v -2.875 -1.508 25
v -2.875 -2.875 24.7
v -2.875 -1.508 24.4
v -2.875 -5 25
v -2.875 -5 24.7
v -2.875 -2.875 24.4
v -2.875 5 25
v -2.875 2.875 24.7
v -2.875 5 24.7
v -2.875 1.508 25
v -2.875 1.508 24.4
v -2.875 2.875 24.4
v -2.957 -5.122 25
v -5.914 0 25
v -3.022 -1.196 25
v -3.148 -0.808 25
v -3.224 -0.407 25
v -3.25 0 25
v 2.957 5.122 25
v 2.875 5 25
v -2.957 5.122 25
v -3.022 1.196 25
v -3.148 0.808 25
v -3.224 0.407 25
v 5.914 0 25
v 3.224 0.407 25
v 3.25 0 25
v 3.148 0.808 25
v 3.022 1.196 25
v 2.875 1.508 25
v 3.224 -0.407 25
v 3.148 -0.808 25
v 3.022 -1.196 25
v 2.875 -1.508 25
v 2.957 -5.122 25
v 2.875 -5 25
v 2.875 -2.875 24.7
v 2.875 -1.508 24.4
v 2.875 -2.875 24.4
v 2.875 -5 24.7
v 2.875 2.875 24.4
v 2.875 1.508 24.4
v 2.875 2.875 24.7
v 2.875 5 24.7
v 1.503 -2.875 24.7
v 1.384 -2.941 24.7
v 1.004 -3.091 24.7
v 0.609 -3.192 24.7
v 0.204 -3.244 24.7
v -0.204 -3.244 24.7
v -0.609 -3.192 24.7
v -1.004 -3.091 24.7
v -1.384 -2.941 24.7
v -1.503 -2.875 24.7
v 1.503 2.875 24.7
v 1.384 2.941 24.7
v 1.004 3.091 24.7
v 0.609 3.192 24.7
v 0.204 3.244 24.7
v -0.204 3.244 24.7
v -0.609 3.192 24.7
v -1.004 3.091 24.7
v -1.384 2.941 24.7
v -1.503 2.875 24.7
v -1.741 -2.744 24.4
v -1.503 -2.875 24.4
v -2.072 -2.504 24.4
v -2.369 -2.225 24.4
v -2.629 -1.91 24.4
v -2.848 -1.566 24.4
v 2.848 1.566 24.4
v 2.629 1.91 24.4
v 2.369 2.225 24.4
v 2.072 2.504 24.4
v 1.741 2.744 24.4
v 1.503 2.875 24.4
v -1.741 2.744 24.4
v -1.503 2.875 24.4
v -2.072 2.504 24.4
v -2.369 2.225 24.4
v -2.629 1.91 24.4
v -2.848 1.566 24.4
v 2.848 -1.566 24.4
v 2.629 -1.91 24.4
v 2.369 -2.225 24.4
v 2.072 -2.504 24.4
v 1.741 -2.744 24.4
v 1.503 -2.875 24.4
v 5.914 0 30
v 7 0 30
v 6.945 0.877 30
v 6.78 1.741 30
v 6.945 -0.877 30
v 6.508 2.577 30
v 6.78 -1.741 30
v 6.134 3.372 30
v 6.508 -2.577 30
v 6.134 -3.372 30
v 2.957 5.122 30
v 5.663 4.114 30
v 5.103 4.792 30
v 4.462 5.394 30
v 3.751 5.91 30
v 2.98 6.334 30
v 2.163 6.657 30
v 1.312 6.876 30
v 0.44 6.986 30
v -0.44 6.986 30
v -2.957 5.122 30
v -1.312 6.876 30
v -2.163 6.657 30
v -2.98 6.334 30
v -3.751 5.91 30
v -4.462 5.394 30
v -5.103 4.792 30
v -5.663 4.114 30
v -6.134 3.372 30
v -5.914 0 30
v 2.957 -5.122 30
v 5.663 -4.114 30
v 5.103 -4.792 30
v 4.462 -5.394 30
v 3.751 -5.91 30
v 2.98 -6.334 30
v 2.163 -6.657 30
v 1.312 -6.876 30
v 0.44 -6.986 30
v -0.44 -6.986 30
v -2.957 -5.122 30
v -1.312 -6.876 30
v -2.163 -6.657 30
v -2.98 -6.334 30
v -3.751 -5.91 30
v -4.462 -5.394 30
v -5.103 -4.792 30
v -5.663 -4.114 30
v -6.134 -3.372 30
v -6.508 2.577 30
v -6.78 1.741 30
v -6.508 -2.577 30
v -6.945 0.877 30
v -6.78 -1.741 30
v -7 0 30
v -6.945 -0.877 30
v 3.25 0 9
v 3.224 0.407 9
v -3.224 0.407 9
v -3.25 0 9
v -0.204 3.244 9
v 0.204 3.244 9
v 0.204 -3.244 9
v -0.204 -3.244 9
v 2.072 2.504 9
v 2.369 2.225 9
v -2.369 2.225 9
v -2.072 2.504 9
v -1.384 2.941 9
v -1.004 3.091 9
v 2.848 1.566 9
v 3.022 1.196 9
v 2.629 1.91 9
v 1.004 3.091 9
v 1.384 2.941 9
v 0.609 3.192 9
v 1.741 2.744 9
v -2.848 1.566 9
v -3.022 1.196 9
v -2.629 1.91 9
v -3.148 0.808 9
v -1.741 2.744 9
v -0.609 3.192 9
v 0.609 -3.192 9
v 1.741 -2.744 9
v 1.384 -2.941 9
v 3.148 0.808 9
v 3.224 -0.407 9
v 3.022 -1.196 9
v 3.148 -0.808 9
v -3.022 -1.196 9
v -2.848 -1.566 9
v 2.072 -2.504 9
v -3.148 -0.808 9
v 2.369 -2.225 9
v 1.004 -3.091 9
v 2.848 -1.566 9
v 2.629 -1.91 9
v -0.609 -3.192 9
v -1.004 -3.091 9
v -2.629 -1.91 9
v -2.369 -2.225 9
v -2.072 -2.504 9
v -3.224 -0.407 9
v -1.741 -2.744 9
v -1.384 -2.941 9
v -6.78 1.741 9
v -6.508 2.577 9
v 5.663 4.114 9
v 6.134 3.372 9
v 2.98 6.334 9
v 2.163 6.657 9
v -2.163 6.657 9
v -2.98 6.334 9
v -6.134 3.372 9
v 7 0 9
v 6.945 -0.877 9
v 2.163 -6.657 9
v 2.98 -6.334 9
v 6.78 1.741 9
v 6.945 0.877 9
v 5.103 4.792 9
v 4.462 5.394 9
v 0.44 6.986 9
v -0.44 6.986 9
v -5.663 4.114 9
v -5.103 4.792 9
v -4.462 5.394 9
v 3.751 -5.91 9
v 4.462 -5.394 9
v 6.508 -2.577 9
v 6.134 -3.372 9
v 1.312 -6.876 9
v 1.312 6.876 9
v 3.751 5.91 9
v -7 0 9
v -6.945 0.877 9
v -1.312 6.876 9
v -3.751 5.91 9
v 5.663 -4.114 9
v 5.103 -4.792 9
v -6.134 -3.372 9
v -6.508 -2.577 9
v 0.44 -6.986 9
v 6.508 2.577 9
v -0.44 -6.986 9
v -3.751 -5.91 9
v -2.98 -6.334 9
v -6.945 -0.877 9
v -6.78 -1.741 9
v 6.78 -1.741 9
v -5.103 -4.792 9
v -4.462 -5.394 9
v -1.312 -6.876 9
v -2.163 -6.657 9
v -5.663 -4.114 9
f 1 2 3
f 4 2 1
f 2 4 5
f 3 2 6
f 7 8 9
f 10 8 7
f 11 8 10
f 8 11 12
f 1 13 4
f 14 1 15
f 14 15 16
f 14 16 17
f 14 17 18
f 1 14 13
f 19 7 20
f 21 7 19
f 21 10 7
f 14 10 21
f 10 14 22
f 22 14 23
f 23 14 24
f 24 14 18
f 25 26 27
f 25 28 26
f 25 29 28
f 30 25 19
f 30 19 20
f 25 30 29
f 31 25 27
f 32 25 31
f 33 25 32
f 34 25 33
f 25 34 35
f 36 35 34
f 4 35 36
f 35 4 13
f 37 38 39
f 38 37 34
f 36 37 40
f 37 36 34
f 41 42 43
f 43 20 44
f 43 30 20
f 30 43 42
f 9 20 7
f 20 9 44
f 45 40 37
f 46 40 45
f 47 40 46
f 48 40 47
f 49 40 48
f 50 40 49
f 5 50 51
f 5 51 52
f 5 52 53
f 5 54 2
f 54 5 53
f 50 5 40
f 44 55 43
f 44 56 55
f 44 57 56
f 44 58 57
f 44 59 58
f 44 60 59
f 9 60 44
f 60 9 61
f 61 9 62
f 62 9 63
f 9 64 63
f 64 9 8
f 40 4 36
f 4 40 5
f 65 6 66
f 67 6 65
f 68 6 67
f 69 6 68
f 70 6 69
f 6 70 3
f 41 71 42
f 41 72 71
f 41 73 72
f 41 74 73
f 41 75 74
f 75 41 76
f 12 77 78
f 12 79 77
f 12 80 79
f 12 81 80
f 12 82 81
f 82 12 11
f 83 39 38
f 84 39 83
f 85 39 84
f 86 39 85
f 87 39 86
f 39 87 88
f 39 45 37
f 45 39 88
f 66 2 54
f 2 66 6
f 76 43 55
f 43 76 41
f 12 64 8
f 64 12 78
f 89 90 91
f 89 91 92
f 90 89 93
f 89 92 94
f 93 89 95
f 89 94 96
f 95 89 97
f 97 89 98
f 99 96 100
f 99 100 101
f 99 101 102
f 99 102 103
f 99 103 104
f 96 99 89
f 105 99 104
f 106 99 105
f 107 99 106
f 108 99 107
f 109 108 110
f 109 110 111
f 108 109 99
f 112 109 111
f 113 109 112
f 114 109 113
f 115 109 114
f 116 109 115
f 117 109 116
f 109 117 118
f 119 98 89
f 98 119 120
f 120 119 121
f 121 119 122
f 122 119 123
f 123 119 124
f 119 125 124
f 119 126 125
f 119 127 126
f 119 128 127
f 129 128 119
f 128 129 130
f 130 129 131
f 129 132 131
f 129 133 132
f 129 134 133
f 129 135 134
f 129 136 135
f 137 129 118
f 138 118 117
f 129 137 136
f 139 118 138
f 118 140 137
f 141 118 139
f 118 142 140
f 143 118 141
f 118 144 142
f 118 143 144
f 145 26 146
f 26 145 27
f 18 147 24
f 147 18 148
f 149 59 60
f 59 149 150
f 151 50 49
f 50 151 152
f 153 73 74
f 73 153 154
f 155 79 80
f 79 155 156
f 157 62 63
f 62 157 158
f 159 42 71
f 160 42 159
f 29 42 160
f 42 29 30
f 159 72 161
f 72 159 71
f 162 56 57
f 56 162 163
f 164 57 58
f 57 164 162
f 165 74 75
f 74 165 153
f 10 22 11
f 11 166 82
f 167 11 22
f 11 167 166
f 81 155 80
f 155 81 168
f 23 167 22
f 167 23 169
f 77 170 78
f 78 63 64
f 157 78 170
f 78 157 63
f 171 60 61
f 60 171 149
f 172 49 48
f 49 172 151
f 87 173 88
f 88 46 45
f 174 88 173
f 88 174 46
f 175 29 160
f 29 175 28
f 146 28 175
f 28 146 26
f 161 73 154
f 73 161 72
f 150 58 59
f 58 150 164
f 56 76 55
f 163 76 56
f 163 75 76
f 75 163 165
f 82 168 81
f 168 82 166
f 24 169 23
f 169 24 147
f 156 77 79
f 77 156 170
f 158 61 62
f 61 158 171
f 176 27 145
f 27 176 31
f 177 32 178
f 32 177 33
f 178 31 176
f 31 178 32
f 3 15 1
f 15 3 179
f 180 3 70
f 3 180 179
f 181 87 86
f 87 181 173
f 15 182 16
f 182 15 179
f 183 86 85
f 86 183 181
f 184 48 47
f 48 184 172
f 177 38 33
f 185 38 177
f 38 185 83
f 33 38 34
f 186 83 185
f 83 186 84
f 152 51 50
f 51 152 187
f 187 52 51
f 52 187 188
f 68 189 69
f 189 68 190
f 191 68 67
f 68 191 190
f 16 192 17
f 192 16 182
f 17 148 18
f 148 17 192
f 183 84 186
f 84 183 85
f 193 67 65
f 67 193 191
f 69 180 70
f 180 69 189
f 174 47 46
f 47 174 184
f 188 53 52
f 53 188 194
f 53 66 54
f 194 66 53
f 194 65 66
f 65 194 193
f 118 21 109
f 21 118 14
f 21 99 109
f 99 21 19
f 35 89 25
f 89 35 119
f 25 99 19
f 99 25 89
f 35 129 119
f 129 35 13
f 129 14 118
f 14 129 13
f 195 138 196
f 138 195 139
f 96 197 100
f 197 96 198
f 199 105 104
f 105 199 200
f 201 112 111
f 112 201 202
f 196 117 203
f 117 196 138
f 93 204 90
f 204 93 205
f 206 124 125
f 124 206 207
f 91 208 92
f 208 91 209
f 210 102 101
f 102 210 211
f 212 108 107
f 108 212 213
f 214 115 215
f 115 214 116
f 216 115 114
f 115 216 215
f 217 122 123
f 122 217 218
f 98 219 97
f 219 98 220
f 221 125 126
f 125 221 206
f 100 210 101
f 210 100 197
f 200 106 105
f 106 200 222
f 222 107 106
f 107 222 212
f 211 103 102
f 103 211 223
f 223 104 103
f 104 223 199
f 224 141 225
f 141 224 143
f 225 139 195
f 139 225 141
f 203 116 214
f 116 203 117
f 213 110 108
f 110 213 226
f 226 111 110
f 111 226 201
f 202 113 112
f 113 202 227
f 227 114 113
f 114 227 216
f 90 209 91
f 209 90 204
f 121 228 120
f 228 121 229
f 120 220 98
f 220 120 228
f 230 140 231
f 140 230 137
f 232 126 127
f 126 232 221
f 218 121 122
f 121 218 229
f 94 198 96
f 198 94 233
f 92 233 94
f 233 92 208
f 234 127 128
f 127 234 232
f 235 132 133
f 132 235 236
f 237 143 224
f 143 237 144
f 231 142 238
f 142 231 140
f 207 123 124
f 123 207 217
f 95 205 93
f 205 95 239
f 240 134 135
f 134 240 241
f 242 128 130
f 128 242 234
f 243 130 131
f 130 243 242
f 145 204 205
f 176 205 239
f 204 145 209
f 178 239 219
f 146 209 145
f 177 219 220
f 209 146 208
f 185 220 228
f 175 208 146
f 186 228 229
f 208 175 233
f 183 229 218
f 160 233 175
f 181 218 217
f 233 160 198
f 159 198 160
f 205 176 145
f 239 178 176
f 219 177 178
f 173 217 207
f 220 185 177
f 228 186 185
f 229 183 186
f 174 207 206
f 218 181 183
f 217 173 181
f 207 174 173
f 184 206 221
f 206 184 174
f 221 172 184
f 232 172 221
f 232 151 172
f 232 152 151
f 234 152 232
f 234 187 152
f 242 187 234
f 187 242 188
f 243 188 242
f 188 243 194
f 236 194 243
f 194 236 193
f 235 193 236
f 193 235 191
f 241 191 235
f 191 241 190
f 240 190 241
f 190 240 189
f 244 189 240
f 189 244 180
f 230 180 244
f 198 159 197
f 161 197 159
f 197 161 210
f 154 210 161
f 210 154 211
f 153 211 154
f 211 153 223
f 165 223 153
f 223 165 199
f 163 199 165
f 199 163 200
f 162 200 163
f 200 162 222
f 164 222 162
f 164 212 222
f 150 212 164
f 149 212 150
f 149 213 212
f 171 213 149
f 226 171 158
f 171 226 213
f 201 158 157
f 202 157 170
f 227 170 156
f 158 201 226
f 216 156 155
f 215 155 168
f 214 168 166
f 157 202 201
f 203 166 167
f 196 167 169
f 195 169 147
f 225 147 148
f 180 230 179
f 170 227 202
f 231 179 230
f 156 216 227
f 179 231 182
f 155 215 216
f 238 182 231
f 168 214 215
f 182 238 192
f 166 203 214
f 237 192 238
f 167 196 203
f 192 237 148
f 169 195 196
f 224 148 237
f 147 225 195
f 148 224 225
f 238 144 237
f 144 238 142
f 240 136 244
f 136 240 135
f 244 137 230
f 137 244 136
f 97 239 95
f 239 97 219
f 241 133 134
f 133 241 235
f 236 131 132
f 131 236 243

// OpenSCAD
$fn = 50;


difference() {
	union() {
		translate(v = [0, 0, 9.0000000000]) {
			cylinder(h = 21, r = 7.0000000000);
		}
	}
	union() {
		translate(v = [0, 0, 30]) {
			rotate(a = [0, 0, 0]) {
				difference() {
					union() {
						#translate(v = [-2.8750000000, -5.0000000000, -5.3000000000]) {
							cube(size = [5.7500000000, 10, 0.3000000000]);
						}
						#translate(v = [-2.8750000000, -2.8750000000, -5.6000000000]) {
							cube(size = [5.7500000000, 5.7500000000, 0.3000000000]);
						}
						#translate(v = [-2.8750000000, -5.0000000000, 0]) {
							cube(size = [5.7500000000, 10, 0.3000000000]);
						}
						#translate(v = [-2.8750000000, -2.8750000000, 0.3000000000]) {
							cube(size = [5.7500000000, 5.7500000000, 0.3000000000]);
						}
						#translate(v = [0, 0, -100.0000000000]) {
							cylinder(h = 200, r = 3.2500000000);
						}
						translate(v = [0, 0, -5]) {
							#linear_extrude(height = 5) {
								polygon(points = [[5.9142500000, 0.0000000000], [2.9571250000, 5.1218907443], [-2.9571250000, 5.1218907443], [-5.9142500000, 0.0000000000], [-2.9571250000, -5.1218907443], [2.9571250000, -5.1218907443]]);
							}
						}
						#translate(v = [-2.8750000000, -5.0000000000, -5.3000000000]) {
							cube(size = [5.7500000000, 10, 0.3000000000]);
						}
						#translate(v = [-2.8750000000, -2.8750000000, -5.6000000000]) {
							cube(size = [5.7500000000, 5.7500000000, 0.3000000000]);
						}
						#translate(v = [-2.8750000000, -5.0000000000, 0]) {
							cube(size = [5.7500000000, 10, 0.3000000000]);
						}
						#translate(v = [-2.8750000000, -2.8750000000, 0.3000000000]) {
							cube(size = [5.7500000000, 5.7500000000, 0.3000000000]);
						}
						#translate(v = [0, 0, -100.0000000000]) {
							cylinder(h = 200, r = 3.2500000000);
						}
						#translate(v = [-2.8750000000, -5.0000000000, -5.3000000000]) {
							cube(size = [5.7500000000, 10, 0.3000000000]);
						}
						#translate(v = [-2.8750000000, -2.8750000000, -5.6000000000]) {
							cube(size = [5.7500000000, 5.7500000000, 0.3000000000]);
						}
						#translate(v = [-2.8750000000, -5.0000000000, 0]) {
							cube(size = [5.7500000000, 10, 0.3000000000]);
						}
						#translate(v = [-2.8750000000, -2.8750000000, 0.3000000000]) {
							cube(size = [5.7500000000, 5.7500000000, 0.3000000000]);
						}
						#translate(v = [0, 0, -100.0000000000]) {
							cylinder(h = 200, r = 3.2500000000);
						}
					}
					union();
				}
			}
		}
		#translate(v = [0, 0, -100.0000000000]) {
			cylinder(h = 200, r = 3.2500000000);
		}
	}
}
